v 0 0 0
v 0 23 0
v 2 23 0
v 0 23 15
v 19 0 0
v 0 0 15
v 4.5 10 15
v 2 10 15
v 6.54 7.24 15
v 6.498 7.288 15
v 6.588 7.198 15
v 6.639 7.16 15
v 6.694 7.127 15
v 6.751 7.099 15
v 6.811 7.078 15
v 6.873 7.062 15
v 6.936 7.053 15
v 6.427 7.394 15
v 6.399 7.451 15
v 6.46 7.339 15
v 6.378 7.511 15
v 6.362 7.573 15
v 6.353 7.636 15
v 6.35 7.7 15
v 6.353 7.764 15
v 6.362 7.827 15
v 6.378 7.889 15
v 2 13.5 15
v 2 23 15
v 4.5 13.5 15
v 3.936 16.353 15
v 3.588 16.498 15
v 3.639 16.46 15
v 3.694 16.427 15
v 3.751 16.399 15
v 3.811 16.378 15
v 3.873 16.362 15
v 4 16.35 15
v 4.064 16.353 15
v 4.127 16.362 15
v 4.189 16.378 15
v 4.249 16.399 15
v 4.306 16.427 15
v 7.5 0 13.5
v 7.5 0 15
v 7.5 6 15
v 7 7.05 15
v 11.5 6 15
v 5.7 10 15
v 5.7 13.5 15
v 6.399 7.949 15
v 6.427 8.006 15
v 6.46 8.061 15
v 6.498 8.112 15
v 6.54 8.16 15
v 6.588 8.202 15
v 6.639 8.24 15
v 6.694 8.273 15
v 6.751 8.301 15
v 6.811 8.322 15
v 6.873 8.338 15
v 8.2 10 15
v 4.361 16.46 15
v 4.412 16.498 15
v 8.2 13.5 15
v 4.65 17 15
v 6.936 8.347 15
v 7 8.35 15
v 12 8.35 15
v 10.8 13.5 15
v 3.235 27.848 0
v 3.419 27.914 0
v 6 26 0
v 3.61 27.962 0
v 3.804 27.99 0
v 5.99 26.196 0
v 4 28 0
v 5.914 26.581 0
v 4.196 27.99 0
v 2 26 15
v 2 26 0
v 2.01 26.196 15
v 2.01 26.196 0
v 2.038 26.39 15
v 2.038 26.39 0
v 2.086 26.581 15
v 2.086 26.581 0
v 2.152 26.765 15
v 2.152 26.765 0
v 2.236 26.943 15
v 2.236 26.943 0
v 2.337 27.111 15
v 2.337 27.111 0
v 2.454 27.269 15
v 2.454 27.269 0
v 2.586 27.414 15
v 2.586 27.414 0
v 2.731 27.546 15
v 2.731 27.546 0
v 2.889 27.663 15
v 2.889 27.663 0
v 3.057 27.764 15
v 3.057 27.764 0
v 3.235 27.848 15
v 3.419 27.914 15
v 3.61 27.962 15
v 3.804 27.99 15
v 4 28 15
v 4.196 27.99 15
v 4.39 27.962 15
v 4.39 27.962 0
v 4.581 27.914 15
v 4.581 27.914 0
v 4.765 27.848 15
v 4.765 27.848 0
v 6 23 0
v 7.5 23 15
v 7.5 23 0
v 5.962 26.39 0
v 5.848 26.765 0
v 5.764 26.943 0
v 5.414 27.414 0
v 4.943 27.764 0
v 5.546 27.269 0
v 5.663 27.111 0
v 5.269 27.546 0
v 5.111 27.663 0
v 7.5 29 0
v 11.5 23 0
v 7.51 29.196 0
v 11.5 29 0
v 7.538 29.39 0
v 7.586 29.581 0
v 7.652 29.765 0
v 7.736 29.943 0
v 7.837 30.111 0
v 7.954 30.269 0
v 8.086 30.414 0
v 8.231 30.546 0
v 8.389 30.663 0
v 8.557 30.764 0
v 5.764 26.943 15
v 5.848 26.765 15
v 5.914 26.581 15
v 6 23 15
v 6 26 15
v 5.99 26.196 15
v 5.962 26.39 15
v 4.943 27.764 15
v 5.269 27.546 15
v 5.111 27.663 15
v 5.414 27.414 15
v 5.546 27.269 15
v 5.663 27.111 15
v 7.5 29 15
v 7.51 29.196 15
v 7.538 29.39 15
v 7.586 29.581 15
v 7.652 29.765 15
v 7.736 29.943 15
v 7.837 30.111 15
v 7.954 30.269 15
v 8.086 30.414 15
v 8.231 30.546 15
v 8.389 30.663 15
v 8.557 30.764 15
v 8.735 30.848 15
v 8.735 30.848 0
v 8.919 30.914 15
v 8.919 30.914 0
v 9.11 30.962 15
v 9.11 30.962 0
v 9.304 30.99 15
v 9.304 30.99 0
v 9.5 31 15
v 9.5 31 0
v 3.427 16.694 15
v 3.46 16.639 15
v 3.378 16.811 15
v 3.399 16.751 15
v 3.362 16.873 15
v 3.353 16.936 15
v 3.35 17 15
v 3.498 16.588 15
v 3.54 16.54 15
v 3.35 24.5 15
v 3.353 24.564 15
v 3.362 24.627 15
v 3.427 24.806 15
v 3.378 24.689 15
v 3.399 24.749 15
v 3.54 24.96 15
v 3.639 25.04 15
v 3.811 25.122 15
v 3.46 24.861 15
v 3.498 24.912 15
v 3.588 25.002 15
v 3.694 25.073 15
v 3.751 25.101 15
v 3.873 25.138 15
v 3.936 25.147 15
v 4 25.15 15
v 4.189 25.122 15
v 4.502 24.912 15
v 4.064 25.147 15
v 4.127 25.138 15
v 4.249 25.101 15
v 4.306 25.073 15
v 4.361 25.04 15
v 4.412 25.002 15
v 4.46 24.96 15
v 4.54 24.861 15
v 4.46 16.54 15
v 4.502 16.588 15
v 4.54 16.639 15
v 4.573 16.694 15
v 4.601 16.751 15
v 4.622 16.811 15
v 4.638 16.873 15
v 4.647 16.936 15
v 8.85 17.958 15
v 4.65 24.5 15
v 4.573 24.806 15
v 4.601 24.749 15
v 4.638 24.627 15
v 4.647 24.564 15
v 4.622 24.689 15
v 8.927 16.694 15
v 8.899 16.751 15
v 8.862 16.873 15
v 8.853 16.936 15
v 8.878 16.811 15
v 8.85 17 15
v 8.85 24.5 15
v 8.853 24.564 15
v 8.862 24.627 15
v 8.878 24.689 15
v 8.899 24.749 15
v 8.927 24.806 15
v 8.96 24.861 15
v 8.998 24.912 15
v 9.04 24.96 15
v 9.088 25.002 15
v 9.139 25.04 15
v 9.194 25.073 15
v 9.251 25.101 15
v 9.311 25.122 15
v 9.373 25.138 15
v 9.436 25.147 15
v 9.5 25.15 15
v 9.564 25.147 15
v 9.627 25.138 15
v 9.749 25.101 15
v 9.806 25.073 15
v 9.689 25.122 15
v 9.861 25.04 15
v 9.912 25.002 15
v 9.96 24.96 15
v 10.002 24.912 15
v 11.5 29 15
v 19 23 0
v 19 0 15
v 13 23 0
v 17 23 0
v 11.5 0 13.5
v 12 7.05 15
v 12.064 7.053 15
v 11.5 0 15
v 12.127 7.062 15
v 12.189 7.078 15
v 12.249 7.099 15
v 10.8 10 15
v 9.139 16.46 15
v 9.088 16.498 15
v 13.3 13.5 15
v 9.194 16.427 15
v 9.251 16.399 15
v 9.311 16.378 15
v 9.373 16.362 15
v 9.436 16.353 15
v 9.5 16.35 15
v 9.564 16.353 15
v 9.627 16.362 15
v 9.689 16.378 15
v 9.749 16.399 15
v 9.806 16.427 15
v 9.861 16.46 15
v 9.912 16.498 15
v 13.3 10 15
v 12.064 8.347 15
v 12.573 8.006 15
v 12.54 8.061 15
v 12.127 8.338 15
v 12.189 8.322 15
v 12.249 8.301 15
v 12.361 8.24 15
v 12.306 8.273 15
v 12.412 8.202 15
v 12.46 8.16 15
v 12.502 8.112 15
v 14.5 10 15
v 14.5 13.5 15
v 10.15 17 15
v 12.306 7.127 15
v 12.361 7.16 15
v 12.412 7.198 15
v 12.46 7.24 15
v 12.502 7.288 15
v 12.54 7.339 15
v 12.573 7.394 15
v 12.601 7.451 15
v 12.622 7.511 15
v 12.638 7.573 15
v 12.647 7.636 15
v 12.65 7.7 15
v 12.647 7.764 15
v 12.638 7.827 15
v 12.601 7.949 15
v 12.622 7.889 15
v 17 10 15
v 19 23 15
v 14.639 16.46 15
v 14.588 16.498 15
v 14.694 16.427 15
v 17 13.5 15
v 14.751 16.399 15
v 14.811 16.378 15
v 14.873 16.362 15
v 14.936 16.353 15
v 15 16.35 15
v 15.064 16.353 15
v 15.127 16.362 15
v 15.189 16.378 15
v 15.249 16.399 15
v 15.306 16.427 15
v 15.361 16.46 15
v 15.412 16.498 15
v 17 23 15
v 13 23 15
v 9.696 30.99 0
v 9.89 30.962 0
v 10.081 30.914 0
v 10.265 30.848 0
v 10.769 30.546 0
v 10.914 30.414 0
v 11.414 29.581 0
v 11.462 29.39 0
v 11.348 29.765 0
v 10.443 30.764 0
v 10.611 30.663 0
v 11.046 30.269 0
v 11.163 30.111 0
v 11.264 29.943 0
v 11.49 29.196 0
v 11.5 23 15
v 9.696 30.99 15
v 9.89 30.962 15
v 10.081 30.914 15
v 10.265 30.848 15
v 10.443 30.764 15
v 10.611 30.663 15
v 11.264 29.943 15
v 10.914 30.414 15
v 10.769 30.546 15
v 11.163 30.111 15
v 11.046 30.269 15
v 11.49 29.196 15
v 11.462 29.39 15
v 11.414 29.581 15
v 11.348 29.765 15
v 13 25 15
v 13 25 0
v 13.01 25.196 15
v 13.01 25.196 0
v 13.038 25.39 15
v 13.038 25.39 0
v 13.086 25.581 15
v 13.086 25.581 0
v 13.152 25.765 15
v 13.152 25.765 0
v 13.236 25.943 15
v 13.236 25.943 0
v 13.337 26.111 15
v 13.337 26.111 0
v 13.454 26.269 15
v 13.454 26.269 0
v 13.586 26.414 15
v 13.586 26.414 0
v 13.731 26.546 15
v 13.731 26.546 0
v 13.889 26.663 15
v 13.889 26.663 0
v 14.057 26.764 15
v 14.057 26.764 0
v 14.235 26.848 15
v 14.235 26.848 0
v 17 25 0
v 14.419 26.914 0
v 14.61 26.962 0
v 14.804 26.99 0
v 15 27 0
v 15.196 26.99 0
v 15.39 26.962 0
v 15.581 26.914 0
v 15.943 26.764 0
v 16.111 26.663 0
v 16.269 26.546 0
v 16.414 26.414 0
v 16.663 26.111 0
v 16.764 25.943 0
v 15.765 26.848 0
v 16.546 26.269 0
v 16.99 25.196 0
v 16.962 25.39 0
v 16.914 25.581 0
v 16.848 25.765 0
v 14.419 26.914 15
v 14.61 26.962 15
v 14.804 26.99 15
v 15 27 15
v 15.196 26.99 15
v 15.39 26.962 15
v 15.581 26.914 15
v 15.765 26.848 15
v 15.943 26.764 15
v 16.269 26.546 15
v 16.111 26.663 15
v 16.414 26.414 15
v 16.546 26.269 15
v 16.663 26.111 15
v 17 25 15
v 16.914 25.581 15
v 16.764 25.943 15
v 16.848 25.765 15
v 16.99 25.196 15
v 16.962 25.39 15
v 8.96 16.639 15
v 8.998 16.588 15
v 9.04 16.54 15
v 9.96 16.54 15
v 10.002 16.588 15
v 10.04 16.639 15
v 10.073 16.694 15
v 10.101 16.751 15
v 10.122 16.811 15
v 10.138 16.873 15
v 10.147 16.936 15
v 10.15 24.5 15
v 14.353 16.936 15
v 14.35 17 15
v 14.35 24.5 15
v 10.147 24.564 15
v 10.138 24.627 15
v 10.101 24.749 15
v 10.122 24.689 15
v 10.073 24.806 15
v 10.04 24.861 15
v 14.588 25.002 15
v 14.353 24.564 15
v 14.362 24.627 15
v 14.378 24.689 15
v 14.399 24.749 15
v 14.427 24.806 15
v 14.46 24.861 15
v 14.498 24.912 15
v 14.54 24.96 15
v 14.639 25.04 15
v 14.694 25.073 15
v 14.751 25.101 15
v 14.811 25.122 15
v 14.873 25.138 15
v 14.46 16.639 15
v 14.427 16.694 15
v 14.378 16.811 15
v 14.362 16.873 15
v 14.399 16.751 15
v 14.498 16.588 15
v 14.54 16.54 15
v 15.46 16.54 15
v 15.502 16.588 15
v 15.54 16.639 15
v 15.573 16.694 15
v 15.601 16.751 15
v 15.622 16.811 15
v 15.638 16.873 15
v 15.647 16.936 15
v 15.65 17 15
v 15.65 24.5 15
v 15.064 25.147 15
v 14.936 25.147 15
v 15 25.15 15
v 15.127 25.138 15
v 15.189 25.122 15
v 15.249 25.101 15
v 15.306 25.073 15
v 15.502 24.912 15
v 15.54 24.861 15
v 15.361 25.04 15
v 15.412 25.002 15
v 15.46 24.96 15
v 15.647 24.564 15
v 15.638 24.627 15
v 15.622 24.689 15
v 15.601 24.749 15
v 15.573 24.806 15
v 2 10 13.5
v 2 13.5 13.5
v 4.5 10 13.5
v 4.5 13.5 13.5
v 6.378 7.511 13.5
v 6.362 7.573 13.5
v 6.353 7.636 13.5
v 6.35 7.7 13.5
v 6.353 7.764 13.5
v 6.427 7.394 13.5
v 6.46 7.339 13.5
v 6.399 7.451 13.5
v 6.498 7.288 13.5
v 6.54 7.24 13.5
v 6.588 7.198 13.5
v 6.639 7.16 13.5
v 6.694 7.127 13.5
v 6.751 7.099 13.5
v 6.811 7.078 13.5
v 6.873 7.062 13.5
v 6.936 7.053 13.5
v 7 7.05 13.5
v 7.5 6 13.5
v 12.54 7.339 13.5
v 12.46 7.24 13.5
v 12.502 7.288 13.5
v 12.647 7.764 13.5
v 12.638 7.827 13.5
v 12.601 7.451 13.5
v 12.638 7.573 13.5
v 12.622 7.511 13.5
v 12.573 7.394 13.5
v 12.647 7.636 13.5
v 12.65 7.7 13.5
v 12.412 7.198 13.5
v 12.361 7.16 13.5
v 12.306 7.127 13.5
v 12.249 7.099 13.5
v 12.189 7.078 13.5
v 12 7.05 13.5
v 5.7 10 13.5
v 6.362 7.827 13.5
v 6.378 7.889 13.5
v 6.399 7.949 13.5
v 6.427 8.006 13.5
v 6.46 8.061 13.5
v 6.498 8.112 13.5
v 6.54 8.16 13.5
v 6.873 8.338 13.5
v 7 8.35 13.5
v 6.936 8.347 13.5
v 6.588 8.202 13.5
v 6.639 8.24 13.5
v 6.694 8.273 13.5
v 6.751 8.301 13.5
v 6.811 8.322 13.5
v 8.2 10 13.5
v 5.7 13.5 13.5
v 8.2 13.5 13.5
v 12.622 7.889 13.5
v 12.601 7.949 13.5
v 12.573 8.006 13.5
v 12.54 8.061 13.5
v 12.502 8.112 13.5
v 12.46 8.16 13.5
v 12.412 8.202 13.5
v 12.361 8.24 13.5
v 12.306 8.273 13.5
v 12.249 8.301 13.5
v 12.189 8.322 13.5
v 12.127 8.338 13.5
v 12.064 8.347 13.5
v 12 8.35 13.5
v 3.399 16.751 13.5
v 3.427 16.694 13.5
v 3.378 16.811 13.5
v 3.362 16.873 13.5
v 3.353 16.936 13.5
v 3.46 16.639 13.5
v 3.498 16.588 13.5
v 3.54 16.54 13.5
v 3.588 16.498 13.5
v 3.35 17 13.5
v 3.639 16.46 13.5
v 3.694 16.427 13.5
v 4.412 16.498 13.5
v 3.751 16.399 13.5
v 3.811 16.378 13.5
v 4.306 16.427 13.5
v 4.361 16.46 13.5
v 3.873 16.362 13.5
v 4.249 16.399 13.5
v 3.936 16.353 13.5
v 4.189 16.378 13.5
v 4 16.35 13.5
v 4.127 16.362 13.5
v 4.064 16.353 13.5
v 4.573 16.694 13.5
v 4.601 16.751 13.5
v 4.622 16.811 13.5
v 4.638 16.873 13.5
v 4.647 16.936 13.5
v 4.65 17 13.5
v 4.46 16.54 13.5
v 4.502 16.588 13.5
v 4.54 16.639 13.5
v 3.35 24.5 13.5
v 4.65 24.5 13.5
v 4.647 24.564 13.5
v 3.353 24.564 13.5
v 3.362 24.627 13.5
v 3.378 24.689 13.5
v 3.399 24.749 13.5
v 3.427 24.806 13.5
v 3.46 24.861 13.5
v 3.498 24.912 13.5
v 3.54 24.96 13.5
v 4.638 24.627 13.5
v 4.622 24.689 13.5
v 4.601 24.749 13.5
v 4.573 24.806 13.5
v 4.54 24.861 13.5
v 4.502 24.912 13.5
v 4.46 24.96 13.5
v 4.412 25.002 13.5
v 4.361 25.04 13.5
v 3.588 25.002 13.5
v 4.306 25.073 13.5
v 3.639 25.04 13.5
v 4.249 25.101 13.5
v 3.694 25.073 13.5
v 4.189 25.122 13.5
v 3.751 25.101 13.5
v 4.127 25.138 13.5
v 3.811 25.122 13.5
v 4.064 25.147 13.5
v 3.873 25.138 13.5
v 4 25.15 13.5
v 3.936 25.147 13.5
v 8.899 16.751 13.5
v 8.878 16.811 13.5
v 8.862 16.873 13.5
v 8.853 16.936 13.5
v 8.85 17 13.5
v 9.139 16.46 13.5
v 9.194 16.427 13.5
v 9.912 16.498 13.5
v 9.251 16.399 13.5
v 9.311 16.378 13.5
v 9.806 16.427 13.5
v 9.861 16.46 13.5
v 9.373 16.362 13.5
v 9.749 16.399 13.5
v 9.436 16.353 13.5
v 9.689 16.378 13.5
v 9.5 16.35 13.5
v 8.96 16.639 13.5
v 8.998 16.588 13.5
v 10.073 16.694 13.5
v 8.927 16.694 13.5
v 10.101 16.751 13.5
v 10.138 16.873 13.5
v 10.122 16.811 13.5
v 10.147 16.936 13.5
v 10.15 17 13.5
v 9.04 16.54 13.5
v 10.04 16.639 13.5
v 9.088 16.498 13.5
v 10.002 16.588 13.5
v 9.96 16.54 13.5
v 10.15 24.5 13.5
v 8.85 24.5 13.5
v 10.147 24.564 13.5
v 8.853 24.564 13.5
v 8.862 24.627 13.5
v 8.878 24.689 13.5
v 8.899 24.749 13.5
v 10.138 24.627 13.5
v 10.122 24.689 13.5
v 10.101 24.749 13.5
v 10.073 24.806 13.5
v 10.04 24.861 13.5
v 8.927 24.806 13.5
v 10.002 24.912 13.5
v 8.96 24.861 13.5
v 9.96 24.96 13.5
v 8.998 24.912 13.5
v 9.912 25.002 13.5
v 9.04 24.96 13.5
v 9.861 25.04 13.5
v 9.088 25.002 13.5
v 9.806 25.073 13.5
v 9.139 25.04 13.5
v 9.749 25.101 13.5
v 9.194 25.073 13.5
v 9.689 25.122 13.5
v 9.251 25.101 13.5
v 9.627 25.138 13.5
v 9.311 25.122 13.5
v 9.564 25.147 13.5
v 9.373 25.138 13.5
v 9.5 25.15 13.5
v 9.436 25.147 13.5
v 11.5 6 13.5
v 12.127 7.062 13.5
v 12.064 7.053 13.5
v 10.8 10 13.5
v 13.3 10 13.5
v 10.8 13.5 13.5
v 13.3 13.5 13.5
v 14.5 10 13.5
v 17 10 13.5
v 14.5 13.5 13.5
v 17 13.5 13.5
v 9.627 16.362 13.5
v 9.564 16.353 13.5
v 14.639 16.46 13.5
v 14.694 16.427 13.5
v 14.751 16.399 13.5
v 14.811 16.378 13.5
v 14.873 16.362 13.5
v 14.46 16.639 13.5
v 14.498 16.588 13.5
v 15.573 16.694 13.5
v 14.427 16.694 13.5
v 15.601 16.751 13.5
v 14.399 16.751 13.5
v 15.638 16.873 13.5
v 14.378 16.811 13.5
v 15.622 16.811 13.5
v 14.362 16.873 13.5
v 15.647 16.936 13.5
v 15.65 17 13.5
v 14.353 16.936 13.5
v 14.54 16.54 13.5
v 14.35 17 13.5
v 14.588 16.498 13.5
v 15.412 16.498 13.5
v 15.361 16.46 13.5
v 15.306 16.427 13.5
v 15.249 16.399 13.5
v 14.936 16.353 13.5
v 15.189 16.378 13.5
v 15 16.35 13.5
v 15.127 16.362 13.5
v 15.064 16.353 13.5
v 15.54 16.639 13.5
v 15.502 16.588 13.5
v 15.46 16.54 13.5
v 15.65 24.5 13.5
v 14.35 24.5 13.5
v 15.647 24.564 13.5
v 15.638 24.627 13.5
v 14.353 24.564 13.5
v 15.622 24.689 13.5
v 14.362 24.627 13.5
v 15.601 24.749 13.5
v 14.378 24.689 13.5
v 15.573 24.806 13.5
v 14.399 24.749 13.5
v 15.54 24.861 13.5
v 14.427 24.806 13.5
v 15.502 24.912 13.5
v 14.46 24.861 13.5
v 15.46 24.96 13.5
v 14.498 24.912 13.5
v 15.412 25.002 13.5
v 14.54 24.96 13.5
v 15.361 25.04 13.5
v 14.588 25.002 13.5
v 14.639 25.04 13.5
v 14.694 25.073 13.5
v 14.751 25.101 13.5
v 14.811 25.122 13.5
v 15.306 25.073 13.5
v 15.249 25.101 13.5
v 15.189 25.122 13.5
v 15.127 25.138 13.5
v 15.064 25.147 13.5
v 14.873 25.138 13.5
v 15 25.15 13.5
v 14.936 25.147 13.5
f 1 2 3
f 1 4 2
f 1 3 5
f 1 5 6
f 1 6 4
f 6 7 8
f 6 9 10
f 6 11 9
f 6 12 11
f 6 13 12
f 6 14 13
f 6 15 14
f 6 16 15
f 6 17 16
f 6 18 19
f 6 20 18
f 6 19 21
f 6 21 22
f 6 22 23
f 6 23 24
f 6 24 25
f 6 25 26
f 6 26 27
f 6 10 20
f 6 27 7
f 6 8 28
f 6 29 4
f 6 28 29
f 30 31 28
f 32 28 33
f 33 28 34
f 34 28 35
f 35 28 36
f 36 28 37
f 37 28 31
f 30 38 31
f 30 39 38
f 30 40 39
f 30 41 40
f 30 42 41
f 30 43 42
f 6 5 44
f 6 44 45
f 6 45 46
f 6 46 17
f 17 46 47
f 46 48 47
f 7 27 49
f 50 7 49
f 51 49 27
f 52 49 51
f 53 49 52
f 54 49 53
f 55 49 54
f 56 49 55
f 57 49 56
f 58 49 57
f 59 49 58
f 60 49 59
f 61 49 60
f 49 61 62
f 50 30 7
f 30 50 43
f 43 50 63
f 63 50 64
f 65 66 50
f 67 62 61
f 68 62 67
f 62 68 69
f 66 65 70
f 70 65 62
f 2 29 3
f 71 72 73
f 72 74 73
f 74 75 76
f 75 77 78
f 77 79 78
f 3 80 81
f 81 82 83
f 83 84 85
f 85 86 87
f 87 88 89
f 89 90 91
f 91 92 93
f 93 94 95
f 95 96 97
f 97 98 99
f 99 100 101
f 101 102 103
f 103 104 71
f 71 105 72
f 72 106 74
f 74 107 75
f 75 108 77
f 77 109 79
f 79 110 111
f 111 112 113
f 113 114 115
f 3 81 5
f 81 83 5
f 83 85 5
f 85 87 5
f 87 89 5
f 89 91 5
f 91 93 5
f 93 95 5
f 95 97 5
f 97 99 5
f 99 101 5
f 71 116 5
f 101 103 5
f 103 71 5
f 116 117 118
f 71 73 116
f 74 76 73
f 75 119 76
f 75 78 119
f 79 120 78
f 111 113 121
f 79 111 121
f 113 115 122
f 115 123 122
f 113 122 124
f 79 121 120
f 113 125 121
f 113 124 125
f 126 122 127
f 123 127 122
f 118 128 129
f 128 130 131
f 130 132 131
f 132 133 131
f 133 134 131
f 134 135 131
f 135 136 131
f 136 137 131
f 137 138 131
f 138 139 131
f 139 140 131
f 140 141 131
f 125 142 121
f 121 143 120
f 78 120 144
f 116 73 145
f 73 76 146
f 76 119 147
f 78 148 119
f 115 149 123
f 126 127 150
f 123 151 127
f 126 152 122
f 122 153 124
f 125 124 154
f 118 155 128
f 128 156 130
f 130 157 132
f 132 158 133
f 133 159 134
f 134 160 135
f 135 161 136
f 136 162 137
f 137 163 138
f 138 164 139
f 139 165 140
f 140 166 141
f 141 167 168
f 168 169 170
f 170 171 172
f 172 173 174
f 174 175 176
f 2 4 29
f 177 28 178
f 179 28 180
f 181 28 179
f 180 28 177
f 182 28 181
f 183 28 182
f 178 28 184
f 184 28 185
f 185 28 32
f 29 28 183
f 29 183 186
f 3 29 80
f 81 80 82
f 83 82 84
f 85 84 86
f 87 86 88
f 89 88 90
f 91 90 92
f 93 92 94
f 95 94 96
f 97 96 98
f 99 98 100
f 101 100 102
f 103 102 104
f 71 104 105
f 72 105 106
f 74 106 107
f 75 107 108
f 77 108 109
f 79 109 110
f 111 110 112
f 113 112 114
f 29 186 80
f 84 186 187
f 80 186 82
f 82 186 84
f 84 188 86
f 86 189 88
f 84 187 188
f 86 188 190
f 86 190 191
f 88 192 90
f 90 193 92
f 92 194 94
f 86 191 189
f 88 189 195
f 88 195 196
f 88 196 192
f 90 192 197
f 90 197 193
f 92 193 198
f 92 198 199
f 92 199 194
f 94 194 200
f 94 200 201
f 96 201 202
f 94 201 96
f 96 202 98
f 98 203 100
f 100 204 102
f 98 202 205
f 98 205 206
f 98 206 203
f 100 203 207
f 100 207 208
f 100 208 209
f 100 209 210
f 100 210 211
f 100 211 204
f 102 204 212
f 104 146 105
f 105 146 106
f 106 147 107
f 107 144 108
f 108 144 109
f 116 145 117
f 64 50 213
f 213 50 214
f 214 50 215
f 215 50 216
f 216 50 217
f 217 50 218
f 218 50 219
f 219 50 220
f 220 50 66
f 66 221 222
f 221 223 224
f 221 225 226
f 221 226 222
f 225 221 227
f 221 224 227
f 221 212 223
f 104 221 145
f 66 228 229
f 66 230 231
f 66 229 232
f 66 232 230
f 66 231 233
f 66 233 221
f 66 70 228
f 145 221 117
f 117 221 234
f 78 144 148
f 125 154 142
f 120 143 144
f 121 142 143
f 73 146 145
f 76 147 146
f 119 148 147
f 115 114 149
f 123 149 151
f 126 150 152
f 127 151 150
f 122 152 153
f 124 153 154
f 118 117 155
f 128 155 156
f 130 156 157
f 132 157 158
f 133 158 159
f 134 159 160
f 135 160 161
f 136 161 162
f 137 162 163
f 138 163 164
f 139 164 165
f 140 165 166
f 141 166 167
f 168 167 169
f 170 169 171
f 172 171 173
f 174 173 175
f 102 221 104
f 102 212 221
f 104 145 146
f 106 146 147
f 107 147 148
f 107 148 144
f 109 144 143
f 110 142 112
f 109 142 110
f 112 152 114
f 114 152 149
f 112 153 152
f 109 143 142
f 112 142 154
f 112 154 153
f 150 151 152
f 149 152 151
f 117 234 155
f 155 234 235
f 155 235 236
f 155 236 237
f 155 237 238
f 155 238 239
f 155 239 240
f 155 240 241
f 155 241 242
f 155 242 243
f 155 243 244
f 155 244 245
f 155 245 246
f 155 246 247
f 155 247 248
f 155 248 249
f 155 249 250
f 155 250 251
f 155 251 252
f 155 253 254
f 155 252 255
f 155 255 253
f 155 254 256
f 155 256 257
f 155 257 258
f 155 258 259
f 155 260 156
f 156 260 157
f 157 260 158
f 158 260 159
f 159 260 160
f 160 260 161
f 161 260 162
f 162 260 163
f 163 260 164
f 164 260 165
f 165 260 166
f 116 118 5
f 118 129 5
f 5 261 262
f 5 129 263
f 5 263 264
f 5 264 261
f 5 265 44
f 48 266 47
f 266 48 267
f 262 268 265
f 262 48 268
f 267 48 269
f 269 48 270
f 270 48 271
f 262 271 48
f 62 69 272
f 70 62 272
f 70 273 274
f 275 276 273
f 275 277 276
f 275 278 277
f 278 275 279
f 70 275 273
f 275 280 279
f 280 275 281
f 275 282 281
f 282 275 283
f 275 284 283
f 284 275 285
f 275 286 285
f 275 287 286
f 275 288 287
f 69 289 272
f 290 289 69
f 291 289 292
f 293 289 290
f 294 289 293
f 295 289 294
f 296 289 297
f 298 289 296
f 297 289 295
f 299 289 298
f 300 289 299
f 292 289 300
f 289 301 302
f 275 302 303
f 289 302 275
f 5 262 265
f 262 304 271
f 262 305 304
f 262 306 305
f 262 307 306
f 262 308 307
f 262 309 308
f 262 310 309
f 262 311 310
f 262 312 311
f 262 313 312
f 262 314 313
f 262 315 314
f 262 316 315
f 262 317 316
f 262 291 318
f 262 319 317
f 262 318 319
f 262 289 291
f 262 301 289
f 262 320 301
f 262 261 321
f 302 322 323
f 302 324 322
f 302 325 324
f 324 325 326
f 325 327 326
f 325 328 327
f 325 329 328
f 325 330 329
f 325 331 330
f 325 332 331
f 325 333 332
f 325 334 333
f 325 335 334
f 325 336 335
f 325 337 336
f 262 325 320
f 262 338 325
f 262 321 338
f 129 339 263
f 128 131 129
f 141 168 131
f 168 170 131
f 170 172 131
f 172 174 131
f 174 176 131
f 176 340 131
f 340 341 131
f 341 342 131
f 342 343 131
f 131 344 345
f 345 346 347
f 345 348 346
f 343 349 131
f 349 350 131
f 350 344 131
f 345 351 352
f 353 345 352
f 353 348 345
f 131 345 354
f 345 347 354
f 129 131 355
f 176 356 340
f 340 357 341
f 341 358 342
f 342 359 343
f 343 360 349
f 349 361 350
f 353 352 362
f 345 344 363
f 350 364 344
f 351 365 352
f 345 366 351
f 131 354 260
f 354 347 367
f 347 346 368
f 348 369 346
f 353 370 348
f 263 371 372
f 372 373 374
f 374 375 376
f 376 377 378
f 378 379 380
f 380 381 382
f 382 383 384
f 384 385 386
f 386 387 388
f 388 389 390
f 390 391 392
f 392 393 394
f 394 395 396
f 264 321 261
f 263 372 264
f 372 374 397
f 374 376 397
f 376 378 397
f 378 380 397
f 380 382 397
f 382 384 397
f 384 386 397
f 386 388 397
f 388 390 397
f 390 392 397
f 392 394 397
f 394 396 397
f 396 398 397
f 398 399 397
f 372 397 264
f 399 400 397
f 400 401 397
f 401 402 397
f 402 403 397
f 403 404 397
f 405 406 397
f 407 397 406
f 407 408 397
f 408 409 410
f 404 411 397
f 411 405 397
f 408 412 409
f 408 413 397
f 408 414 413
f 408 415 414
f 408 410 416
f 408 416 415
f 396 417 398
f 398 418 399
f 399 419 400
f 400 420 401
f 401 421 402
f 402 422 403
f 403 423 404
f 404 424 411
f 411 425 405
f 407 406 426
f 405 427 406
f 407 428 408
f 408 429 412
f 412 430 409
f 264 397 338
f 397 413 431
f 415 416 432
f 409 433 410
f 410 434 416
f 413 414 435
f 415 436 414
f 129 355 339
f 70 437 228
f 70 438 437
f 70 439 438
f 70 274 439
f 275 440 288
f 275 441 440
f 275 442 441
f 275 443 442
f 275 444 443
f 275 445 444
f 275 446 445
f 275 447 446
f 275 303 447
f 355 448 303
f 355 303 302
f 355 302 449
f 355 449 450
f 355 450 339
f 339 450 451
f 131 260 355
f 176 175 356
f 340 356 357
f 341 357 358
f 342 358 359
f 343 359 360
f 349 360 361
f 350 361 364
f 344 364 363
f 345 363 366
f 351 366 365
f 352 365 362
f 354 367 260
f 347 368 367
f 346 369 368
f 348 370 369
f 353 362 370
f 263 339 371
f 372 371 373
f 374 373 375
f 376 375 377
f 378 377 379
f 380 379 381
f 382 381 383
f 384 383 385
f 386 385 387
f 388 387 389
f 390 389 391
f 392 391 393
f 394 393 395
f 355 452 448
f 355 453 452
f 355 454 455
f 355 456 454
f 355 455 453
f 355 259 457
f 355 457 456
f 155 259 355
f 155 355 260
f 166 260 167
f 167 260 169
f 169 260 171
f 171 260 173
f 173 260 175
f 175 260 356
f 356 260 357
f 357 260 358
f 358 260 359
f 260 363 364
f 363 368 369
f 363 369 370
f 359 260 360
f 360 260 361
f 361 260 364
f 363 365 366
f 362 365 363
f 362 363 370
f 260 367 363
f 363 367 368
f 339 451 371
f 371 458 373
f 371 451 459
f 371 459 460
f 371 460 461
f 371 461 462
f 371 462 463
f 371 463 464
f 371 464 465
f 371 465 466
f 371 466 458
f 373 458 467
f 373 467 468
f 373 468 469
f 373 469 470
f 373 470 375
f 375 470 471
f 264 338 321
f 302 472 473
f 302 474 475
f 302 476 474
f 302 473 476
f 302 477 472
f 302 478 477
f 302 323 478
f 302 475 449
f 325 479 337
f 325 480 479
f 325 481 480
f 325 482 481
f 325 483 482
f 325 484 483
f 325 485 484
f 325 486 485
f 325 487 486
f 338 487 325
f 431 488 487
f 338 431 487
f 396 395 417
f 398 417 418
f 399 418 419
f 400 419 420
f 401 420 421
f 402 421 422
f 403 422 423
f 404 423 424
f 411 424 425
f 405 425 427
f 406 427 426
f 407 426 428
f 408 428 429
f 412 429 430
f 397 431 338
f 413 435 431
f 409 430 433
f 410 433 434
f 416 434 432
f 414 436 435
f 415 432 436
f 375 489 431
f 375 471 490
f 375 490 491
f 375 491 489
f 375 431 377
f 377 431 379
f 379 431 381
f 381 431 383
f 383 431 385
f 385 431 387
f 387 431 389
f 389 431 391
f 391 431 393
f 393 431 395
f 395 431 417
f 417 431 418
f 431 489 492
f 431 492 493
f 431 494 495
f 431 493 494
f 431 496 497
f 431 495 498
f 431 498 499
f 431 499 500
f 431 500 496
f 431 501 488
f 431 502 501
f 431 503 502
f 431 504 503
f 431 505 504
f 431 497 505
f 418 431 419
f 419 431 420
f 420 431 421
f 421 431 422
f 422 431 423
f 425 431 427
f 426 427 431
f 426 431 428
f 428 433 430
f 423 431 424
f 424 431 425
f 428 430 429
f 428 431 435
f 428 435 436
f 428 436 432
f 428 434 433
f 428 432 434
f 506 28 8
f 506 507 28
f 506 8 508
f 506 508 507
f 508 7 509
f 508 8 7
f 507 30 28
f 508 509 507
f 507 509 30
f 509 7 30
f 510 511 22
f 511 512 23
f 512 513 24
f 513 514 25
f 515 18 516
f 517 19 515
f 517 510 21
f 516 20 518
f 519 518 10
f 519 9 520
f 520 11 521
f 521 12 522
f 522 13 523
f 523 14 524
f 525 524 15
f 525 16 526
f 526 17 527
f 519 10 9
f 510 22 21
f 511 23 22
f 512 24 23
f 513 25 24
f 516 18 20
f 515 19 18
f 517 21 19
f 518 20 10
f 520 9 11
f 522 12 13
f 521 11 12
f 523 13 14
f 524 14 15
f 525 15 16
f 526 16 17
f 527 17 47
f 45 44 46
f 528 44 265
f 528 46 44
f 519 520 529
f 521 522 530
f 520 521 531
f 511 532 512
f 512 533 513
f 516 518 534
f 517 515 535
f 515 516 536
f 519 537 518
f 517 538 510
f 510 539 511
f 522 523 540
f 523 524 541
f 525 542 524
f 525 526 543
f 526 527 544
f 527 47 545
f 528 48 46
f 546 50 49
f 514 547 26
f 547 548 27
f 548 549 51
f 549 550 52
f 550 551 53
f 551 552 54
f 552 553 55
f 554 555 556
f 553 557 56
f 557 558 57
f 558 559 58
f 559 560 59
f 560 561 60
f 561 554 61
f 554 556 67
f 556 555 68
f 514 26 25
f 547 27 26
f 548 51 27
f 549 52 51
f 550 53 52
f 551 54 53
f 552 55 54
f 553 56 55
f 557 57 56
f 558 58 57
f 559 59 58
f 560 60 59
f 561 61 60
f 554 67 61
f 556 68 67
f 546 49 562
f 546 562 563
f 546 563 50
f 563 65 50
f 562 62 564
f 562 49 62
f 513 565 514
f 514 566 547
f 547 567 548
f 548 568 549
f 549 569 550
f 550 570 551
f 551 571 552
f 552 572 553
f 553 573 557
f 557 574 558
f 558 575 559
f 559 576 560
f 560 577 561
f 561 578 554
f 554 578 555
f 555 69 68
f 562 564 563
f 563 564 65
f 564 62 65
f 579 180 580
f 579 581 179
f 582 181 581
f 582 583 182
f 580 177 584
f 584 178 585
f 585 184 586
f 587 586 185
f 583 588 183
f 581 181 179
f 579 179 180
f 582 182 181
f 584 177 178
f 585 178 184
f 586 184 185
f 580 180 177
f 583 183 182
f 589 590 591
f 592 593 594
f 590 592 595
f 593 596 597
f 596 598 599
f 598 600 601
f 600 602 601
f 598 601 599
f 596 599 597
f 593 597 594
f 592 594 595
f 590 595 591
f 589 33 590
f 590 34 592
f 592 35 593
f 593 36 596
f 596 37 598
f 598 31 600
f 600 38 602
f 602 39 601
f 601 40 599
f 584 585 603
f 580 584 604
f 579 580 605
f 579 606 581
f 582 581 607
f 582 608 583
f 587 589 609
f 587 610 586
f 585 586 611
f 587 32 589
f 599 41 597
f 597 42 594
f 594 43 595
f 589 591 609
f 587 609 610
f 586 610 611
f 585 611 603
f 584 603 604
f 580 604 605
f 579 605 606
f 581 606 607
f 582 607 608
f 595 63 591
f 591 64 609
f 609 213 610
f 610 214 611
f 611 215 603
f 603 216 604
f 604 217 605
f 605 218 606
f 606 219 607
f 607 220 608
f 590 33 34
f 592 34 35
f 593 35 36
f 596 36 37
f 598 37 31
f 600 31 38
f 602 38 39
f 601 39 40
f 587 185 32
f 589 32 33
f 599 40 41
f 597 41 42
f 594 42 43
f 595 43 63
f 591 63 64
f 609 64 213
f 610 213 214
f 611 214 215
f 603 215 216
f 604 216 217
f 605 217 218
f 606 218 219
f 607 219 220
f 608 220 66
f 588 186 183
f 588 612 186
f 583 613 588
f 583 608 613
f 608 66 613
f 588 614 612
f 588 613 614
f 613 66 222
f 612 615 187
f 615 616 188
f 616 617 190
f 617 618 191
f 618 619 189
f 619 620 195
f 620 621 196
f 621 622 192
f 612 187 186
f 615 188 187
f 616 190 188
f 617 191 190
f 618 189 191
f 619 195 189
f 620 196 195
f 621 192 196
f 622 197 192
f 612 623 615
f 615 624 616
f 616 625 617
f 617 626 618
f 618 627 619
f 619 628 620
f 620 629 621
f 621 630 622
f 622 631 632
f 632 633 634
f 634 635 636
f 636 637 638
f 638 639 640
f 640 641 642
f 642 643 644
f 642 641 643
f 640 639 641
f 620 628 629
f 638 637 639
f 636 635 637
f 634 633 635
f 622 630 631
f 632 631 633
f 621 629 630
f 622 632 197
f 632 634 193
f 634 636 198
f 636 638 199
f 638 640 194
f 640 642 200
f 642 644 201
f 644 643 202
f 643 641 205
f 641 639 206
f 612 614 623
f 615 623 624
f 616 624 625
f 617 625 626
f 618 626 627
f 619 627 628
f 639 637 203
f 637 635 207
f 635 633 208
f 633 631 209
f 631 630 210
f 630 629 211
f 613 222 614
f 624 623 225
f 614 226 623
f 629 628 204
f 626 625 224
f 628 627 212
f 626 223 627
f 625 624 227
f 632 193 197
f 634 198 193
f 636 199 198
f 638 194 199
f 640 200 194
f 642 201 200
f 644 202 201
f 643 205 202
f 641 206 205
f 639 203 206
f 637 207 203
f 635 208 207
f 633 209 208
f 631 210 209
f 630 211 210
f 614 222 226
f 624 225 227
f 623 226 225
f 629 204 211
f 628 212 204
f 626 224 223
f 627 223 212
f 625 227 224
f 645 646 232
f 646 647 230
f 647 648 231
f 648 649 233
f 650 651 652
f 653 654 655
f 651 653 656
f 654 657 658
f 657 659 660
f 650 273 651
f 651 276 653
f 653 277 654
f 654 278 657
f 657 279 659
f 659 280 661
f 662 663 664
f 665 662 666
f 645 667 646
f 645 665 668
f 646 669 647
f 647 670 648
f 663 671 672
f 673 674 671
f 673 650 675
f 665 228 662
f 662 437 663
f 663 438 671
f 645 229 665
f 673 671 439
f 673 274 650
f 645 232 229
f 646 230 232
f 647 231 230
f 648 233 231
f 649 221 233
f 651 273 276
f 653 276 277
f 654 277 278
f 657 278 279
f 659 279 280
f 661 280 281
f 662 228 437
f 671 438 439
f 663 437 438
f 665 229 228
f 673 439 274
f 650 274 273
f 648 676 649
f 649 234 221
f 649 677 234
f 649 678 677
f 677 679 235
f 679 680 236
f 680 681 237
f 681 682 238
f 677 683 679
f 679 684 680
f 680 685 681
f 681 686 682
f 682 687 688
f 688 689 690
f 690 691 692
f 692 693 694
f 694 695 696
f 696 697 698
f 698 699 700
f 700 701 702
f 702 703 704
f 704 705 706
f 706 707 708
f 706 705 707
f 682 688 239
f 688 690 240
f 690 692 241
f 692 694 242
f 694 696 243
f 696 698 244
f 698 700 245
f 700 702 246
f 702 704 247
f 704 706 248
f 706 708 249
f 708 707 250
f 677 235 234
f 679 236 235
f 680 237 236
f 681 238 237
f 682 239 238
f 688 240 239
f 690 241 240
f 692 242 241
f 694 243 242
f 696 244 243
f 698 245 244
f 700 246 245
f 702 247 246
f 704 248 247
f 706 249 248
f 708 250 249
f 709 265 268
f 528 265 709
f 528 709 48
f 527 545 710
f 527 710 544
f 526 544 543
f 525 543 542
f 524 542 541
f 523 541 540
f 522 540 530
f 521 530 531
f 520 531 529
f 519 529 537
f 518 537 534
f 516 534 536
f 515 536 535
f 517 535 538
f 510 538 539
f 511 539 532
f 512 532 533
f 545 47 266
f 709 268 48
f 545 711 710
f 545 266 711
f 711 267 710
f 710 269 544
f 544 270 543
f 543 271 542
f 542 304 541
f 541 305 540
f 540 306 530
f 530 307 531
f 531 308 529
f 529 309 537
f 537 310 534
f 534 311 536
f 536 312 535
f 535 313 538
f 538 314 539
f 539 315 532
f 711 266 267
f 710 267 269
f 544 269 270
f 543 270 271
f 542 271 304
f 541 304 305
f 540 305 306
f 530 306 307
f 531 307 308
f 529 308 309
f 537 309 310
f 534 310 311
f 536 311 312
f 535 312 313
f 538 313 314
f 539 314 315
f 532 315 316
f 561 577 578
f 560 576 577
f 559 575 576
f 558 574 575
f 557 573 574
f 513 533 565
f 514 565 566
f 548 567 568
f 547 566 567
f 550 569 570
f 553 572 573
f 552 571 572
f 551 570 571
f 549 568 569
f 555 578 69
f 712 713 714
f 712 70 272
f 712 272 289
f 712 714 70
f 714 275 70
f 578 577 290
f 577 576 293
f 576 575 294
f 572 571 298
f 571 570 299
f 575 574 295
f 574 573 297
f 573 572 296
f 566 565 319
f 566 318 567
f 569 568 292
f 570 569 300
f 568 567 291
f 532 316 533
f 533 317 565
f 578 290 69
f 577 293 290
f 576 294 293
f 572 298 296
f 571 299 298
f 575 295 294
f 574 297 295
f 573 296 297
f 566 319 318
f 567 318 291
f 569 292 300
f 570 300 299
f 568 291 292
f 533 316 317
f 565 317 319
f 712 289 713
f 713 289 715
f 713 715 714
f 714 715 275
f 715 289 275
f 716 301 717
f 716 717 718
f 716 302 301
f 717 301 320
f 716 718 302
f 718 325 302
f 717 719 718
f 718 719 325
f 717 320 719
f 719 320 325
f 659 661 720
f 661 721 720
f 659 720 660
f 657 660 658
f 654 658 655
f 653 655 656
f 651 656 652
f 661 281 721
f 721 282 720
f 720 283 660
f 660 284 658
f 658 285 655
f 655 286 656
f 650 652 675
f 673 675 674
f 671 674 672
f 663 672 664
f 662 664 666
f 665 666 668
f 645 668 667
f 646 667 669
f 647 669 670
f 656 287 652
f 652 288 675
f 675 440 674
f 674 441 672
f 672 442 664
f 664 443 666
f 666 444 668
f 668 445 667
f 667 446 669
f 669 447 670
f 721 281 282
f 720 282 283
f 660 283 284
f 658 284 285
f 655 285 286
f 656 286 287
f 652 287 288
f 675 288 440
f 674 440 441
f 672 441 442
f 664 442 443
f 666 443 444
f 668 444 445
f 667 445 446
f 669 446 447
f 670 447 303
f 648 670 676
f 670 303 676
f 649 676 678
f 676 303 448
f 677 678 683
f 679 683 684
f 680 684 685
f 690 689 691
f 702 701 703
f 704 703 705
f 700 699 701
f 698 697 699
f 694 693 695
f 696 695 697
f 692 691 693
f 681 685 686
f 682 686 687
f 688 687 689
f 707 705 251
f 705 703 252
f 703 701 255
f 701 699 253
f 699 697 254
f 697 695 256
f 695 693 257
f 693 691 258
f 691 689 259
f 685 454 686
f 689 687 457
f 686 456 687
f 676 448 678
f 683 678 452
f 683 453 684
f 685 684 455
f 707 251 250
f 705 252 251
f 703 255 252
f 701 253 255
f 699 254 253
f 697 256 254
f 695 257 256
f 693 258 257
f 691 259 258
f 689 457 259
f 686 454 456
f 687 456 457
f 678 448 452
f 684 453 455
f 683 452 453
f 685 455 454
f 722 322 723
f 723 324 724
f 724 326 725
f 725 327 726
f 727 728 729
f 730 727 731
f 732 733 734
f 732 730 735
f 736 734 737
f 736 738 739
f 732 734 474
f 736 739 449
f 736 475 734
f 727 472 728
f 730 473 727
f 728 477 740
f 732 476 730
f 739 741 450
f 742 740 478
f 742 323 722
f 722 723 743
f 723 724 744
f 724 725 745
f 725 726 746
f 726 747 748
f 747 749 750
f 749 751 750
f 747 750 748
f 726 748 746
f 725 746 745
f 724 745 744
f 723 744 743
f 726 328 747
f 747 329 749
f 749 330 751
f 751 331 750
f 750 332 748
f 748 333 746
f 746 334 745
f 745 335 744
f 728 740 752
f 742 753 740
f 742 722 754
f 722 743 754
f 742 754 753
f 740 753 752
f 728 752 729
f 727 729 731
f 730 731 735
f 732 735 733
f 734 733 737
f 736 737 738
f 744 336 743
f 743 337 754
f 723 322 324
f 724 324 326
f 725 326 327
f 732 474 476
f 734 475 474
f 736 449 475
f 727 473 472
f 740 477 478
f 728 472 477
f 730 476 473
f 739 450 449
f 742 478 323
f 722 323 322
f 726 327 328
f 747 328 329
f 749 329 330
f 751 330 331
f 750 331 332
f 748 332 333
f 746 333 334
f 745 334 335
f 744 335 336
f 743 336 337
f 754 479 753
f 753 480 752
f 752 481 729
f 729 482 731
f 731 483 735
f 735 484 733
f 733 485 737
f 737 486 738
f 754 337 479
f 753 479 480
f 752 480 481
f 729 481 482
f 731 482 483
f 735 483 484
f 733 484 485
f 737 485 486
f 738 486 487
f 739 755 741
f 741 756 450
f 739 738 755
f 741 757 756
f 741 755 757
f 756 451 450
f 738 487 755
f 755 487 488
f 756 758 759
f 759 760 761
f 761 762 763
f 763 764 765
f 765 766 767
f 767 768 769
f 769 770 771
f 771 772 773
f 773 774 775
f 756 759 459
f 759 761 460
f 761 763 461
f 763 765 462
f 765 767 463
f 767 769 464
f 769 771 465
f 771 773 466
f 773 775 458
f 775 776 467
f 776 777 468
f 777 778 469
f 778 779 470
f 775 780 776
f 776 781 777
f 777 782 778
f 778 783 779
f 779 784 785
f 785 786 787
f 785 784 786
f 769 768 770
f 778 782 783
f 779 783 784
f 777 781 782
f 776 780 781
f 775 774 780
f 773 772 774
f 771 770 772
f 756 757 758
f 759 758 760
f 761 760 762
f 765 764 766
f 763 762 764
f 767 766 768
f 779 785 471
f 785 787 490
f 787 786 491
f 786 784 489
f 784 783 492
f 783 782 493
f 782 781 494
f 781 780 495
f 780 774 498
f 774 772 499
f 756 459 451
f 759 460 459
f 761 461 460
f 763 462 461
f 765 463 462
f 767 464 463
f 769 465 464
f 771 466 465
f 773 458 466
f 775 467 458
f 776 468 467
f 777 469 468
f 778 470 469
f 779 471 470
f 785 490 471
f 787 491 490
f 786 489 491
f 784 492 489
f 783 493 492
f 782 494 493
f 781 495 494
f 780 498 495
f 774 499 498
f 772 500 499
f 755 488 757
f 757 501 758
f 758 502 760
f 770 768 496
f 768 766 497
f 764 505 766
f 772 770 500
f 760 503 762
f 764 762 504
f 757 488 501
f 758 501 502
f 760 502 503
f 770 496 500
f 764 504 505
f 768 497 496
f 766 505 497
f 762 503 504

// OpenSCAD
// Facade game piece in mm: X width, Y height, Z depth.
// Place Z=0 flat on the build plate; all recessed details are 1.5 mm deep.
$fn=64;
module rect(x,y,w,h){translate([x,y]) square([w,h]);}
module disk(x,y,r){translate([x,y]) circle(r=r);}
module line(a,b,w=1.5){hull(){translate(a) circle(d=w);translate(b) circle(d=w);}}
module path(points,w=1.5){for(i=[0:len(points)-2]) line(points[i],points[i+1],w);}
module cross_icon(x,y,size=6,bar=1.8){union(){rect(x-size/2,y-bar/2,size,bar);rect(x-bar/2,y-size/2,bar,size);}}
module tank(x,y,w,h){union(){rect(x,y,w,h-w/2);disk(x+w/2,y+h-w/2,w/2);}}
module ring(x,y,r,w=1.3){difference(){disk(x,y,r);disk(x,y,r-w);}}

module silhouette(){
union(){rect(0,0,19,23);tank(2,23,4,5);tank(7.5,23,4,8);tank(13,23,4,4);}
}
module facade_recesses(){union(){
for(x=[4,9.5,15]) line([x,17],[x,24.5],1.3);
for(x=[2,5.7,10.8,14.5]) rect(x,10,2.5,3.5);
rect(7.5,0,4,6);
line([7,7.7],[12,7.7],1.3);
}}
difference(){
 linear_extrude(height=15) silhouette();
 translate([0,0,13.5]) linear_extrude(height=2) facade_recesses();
}
